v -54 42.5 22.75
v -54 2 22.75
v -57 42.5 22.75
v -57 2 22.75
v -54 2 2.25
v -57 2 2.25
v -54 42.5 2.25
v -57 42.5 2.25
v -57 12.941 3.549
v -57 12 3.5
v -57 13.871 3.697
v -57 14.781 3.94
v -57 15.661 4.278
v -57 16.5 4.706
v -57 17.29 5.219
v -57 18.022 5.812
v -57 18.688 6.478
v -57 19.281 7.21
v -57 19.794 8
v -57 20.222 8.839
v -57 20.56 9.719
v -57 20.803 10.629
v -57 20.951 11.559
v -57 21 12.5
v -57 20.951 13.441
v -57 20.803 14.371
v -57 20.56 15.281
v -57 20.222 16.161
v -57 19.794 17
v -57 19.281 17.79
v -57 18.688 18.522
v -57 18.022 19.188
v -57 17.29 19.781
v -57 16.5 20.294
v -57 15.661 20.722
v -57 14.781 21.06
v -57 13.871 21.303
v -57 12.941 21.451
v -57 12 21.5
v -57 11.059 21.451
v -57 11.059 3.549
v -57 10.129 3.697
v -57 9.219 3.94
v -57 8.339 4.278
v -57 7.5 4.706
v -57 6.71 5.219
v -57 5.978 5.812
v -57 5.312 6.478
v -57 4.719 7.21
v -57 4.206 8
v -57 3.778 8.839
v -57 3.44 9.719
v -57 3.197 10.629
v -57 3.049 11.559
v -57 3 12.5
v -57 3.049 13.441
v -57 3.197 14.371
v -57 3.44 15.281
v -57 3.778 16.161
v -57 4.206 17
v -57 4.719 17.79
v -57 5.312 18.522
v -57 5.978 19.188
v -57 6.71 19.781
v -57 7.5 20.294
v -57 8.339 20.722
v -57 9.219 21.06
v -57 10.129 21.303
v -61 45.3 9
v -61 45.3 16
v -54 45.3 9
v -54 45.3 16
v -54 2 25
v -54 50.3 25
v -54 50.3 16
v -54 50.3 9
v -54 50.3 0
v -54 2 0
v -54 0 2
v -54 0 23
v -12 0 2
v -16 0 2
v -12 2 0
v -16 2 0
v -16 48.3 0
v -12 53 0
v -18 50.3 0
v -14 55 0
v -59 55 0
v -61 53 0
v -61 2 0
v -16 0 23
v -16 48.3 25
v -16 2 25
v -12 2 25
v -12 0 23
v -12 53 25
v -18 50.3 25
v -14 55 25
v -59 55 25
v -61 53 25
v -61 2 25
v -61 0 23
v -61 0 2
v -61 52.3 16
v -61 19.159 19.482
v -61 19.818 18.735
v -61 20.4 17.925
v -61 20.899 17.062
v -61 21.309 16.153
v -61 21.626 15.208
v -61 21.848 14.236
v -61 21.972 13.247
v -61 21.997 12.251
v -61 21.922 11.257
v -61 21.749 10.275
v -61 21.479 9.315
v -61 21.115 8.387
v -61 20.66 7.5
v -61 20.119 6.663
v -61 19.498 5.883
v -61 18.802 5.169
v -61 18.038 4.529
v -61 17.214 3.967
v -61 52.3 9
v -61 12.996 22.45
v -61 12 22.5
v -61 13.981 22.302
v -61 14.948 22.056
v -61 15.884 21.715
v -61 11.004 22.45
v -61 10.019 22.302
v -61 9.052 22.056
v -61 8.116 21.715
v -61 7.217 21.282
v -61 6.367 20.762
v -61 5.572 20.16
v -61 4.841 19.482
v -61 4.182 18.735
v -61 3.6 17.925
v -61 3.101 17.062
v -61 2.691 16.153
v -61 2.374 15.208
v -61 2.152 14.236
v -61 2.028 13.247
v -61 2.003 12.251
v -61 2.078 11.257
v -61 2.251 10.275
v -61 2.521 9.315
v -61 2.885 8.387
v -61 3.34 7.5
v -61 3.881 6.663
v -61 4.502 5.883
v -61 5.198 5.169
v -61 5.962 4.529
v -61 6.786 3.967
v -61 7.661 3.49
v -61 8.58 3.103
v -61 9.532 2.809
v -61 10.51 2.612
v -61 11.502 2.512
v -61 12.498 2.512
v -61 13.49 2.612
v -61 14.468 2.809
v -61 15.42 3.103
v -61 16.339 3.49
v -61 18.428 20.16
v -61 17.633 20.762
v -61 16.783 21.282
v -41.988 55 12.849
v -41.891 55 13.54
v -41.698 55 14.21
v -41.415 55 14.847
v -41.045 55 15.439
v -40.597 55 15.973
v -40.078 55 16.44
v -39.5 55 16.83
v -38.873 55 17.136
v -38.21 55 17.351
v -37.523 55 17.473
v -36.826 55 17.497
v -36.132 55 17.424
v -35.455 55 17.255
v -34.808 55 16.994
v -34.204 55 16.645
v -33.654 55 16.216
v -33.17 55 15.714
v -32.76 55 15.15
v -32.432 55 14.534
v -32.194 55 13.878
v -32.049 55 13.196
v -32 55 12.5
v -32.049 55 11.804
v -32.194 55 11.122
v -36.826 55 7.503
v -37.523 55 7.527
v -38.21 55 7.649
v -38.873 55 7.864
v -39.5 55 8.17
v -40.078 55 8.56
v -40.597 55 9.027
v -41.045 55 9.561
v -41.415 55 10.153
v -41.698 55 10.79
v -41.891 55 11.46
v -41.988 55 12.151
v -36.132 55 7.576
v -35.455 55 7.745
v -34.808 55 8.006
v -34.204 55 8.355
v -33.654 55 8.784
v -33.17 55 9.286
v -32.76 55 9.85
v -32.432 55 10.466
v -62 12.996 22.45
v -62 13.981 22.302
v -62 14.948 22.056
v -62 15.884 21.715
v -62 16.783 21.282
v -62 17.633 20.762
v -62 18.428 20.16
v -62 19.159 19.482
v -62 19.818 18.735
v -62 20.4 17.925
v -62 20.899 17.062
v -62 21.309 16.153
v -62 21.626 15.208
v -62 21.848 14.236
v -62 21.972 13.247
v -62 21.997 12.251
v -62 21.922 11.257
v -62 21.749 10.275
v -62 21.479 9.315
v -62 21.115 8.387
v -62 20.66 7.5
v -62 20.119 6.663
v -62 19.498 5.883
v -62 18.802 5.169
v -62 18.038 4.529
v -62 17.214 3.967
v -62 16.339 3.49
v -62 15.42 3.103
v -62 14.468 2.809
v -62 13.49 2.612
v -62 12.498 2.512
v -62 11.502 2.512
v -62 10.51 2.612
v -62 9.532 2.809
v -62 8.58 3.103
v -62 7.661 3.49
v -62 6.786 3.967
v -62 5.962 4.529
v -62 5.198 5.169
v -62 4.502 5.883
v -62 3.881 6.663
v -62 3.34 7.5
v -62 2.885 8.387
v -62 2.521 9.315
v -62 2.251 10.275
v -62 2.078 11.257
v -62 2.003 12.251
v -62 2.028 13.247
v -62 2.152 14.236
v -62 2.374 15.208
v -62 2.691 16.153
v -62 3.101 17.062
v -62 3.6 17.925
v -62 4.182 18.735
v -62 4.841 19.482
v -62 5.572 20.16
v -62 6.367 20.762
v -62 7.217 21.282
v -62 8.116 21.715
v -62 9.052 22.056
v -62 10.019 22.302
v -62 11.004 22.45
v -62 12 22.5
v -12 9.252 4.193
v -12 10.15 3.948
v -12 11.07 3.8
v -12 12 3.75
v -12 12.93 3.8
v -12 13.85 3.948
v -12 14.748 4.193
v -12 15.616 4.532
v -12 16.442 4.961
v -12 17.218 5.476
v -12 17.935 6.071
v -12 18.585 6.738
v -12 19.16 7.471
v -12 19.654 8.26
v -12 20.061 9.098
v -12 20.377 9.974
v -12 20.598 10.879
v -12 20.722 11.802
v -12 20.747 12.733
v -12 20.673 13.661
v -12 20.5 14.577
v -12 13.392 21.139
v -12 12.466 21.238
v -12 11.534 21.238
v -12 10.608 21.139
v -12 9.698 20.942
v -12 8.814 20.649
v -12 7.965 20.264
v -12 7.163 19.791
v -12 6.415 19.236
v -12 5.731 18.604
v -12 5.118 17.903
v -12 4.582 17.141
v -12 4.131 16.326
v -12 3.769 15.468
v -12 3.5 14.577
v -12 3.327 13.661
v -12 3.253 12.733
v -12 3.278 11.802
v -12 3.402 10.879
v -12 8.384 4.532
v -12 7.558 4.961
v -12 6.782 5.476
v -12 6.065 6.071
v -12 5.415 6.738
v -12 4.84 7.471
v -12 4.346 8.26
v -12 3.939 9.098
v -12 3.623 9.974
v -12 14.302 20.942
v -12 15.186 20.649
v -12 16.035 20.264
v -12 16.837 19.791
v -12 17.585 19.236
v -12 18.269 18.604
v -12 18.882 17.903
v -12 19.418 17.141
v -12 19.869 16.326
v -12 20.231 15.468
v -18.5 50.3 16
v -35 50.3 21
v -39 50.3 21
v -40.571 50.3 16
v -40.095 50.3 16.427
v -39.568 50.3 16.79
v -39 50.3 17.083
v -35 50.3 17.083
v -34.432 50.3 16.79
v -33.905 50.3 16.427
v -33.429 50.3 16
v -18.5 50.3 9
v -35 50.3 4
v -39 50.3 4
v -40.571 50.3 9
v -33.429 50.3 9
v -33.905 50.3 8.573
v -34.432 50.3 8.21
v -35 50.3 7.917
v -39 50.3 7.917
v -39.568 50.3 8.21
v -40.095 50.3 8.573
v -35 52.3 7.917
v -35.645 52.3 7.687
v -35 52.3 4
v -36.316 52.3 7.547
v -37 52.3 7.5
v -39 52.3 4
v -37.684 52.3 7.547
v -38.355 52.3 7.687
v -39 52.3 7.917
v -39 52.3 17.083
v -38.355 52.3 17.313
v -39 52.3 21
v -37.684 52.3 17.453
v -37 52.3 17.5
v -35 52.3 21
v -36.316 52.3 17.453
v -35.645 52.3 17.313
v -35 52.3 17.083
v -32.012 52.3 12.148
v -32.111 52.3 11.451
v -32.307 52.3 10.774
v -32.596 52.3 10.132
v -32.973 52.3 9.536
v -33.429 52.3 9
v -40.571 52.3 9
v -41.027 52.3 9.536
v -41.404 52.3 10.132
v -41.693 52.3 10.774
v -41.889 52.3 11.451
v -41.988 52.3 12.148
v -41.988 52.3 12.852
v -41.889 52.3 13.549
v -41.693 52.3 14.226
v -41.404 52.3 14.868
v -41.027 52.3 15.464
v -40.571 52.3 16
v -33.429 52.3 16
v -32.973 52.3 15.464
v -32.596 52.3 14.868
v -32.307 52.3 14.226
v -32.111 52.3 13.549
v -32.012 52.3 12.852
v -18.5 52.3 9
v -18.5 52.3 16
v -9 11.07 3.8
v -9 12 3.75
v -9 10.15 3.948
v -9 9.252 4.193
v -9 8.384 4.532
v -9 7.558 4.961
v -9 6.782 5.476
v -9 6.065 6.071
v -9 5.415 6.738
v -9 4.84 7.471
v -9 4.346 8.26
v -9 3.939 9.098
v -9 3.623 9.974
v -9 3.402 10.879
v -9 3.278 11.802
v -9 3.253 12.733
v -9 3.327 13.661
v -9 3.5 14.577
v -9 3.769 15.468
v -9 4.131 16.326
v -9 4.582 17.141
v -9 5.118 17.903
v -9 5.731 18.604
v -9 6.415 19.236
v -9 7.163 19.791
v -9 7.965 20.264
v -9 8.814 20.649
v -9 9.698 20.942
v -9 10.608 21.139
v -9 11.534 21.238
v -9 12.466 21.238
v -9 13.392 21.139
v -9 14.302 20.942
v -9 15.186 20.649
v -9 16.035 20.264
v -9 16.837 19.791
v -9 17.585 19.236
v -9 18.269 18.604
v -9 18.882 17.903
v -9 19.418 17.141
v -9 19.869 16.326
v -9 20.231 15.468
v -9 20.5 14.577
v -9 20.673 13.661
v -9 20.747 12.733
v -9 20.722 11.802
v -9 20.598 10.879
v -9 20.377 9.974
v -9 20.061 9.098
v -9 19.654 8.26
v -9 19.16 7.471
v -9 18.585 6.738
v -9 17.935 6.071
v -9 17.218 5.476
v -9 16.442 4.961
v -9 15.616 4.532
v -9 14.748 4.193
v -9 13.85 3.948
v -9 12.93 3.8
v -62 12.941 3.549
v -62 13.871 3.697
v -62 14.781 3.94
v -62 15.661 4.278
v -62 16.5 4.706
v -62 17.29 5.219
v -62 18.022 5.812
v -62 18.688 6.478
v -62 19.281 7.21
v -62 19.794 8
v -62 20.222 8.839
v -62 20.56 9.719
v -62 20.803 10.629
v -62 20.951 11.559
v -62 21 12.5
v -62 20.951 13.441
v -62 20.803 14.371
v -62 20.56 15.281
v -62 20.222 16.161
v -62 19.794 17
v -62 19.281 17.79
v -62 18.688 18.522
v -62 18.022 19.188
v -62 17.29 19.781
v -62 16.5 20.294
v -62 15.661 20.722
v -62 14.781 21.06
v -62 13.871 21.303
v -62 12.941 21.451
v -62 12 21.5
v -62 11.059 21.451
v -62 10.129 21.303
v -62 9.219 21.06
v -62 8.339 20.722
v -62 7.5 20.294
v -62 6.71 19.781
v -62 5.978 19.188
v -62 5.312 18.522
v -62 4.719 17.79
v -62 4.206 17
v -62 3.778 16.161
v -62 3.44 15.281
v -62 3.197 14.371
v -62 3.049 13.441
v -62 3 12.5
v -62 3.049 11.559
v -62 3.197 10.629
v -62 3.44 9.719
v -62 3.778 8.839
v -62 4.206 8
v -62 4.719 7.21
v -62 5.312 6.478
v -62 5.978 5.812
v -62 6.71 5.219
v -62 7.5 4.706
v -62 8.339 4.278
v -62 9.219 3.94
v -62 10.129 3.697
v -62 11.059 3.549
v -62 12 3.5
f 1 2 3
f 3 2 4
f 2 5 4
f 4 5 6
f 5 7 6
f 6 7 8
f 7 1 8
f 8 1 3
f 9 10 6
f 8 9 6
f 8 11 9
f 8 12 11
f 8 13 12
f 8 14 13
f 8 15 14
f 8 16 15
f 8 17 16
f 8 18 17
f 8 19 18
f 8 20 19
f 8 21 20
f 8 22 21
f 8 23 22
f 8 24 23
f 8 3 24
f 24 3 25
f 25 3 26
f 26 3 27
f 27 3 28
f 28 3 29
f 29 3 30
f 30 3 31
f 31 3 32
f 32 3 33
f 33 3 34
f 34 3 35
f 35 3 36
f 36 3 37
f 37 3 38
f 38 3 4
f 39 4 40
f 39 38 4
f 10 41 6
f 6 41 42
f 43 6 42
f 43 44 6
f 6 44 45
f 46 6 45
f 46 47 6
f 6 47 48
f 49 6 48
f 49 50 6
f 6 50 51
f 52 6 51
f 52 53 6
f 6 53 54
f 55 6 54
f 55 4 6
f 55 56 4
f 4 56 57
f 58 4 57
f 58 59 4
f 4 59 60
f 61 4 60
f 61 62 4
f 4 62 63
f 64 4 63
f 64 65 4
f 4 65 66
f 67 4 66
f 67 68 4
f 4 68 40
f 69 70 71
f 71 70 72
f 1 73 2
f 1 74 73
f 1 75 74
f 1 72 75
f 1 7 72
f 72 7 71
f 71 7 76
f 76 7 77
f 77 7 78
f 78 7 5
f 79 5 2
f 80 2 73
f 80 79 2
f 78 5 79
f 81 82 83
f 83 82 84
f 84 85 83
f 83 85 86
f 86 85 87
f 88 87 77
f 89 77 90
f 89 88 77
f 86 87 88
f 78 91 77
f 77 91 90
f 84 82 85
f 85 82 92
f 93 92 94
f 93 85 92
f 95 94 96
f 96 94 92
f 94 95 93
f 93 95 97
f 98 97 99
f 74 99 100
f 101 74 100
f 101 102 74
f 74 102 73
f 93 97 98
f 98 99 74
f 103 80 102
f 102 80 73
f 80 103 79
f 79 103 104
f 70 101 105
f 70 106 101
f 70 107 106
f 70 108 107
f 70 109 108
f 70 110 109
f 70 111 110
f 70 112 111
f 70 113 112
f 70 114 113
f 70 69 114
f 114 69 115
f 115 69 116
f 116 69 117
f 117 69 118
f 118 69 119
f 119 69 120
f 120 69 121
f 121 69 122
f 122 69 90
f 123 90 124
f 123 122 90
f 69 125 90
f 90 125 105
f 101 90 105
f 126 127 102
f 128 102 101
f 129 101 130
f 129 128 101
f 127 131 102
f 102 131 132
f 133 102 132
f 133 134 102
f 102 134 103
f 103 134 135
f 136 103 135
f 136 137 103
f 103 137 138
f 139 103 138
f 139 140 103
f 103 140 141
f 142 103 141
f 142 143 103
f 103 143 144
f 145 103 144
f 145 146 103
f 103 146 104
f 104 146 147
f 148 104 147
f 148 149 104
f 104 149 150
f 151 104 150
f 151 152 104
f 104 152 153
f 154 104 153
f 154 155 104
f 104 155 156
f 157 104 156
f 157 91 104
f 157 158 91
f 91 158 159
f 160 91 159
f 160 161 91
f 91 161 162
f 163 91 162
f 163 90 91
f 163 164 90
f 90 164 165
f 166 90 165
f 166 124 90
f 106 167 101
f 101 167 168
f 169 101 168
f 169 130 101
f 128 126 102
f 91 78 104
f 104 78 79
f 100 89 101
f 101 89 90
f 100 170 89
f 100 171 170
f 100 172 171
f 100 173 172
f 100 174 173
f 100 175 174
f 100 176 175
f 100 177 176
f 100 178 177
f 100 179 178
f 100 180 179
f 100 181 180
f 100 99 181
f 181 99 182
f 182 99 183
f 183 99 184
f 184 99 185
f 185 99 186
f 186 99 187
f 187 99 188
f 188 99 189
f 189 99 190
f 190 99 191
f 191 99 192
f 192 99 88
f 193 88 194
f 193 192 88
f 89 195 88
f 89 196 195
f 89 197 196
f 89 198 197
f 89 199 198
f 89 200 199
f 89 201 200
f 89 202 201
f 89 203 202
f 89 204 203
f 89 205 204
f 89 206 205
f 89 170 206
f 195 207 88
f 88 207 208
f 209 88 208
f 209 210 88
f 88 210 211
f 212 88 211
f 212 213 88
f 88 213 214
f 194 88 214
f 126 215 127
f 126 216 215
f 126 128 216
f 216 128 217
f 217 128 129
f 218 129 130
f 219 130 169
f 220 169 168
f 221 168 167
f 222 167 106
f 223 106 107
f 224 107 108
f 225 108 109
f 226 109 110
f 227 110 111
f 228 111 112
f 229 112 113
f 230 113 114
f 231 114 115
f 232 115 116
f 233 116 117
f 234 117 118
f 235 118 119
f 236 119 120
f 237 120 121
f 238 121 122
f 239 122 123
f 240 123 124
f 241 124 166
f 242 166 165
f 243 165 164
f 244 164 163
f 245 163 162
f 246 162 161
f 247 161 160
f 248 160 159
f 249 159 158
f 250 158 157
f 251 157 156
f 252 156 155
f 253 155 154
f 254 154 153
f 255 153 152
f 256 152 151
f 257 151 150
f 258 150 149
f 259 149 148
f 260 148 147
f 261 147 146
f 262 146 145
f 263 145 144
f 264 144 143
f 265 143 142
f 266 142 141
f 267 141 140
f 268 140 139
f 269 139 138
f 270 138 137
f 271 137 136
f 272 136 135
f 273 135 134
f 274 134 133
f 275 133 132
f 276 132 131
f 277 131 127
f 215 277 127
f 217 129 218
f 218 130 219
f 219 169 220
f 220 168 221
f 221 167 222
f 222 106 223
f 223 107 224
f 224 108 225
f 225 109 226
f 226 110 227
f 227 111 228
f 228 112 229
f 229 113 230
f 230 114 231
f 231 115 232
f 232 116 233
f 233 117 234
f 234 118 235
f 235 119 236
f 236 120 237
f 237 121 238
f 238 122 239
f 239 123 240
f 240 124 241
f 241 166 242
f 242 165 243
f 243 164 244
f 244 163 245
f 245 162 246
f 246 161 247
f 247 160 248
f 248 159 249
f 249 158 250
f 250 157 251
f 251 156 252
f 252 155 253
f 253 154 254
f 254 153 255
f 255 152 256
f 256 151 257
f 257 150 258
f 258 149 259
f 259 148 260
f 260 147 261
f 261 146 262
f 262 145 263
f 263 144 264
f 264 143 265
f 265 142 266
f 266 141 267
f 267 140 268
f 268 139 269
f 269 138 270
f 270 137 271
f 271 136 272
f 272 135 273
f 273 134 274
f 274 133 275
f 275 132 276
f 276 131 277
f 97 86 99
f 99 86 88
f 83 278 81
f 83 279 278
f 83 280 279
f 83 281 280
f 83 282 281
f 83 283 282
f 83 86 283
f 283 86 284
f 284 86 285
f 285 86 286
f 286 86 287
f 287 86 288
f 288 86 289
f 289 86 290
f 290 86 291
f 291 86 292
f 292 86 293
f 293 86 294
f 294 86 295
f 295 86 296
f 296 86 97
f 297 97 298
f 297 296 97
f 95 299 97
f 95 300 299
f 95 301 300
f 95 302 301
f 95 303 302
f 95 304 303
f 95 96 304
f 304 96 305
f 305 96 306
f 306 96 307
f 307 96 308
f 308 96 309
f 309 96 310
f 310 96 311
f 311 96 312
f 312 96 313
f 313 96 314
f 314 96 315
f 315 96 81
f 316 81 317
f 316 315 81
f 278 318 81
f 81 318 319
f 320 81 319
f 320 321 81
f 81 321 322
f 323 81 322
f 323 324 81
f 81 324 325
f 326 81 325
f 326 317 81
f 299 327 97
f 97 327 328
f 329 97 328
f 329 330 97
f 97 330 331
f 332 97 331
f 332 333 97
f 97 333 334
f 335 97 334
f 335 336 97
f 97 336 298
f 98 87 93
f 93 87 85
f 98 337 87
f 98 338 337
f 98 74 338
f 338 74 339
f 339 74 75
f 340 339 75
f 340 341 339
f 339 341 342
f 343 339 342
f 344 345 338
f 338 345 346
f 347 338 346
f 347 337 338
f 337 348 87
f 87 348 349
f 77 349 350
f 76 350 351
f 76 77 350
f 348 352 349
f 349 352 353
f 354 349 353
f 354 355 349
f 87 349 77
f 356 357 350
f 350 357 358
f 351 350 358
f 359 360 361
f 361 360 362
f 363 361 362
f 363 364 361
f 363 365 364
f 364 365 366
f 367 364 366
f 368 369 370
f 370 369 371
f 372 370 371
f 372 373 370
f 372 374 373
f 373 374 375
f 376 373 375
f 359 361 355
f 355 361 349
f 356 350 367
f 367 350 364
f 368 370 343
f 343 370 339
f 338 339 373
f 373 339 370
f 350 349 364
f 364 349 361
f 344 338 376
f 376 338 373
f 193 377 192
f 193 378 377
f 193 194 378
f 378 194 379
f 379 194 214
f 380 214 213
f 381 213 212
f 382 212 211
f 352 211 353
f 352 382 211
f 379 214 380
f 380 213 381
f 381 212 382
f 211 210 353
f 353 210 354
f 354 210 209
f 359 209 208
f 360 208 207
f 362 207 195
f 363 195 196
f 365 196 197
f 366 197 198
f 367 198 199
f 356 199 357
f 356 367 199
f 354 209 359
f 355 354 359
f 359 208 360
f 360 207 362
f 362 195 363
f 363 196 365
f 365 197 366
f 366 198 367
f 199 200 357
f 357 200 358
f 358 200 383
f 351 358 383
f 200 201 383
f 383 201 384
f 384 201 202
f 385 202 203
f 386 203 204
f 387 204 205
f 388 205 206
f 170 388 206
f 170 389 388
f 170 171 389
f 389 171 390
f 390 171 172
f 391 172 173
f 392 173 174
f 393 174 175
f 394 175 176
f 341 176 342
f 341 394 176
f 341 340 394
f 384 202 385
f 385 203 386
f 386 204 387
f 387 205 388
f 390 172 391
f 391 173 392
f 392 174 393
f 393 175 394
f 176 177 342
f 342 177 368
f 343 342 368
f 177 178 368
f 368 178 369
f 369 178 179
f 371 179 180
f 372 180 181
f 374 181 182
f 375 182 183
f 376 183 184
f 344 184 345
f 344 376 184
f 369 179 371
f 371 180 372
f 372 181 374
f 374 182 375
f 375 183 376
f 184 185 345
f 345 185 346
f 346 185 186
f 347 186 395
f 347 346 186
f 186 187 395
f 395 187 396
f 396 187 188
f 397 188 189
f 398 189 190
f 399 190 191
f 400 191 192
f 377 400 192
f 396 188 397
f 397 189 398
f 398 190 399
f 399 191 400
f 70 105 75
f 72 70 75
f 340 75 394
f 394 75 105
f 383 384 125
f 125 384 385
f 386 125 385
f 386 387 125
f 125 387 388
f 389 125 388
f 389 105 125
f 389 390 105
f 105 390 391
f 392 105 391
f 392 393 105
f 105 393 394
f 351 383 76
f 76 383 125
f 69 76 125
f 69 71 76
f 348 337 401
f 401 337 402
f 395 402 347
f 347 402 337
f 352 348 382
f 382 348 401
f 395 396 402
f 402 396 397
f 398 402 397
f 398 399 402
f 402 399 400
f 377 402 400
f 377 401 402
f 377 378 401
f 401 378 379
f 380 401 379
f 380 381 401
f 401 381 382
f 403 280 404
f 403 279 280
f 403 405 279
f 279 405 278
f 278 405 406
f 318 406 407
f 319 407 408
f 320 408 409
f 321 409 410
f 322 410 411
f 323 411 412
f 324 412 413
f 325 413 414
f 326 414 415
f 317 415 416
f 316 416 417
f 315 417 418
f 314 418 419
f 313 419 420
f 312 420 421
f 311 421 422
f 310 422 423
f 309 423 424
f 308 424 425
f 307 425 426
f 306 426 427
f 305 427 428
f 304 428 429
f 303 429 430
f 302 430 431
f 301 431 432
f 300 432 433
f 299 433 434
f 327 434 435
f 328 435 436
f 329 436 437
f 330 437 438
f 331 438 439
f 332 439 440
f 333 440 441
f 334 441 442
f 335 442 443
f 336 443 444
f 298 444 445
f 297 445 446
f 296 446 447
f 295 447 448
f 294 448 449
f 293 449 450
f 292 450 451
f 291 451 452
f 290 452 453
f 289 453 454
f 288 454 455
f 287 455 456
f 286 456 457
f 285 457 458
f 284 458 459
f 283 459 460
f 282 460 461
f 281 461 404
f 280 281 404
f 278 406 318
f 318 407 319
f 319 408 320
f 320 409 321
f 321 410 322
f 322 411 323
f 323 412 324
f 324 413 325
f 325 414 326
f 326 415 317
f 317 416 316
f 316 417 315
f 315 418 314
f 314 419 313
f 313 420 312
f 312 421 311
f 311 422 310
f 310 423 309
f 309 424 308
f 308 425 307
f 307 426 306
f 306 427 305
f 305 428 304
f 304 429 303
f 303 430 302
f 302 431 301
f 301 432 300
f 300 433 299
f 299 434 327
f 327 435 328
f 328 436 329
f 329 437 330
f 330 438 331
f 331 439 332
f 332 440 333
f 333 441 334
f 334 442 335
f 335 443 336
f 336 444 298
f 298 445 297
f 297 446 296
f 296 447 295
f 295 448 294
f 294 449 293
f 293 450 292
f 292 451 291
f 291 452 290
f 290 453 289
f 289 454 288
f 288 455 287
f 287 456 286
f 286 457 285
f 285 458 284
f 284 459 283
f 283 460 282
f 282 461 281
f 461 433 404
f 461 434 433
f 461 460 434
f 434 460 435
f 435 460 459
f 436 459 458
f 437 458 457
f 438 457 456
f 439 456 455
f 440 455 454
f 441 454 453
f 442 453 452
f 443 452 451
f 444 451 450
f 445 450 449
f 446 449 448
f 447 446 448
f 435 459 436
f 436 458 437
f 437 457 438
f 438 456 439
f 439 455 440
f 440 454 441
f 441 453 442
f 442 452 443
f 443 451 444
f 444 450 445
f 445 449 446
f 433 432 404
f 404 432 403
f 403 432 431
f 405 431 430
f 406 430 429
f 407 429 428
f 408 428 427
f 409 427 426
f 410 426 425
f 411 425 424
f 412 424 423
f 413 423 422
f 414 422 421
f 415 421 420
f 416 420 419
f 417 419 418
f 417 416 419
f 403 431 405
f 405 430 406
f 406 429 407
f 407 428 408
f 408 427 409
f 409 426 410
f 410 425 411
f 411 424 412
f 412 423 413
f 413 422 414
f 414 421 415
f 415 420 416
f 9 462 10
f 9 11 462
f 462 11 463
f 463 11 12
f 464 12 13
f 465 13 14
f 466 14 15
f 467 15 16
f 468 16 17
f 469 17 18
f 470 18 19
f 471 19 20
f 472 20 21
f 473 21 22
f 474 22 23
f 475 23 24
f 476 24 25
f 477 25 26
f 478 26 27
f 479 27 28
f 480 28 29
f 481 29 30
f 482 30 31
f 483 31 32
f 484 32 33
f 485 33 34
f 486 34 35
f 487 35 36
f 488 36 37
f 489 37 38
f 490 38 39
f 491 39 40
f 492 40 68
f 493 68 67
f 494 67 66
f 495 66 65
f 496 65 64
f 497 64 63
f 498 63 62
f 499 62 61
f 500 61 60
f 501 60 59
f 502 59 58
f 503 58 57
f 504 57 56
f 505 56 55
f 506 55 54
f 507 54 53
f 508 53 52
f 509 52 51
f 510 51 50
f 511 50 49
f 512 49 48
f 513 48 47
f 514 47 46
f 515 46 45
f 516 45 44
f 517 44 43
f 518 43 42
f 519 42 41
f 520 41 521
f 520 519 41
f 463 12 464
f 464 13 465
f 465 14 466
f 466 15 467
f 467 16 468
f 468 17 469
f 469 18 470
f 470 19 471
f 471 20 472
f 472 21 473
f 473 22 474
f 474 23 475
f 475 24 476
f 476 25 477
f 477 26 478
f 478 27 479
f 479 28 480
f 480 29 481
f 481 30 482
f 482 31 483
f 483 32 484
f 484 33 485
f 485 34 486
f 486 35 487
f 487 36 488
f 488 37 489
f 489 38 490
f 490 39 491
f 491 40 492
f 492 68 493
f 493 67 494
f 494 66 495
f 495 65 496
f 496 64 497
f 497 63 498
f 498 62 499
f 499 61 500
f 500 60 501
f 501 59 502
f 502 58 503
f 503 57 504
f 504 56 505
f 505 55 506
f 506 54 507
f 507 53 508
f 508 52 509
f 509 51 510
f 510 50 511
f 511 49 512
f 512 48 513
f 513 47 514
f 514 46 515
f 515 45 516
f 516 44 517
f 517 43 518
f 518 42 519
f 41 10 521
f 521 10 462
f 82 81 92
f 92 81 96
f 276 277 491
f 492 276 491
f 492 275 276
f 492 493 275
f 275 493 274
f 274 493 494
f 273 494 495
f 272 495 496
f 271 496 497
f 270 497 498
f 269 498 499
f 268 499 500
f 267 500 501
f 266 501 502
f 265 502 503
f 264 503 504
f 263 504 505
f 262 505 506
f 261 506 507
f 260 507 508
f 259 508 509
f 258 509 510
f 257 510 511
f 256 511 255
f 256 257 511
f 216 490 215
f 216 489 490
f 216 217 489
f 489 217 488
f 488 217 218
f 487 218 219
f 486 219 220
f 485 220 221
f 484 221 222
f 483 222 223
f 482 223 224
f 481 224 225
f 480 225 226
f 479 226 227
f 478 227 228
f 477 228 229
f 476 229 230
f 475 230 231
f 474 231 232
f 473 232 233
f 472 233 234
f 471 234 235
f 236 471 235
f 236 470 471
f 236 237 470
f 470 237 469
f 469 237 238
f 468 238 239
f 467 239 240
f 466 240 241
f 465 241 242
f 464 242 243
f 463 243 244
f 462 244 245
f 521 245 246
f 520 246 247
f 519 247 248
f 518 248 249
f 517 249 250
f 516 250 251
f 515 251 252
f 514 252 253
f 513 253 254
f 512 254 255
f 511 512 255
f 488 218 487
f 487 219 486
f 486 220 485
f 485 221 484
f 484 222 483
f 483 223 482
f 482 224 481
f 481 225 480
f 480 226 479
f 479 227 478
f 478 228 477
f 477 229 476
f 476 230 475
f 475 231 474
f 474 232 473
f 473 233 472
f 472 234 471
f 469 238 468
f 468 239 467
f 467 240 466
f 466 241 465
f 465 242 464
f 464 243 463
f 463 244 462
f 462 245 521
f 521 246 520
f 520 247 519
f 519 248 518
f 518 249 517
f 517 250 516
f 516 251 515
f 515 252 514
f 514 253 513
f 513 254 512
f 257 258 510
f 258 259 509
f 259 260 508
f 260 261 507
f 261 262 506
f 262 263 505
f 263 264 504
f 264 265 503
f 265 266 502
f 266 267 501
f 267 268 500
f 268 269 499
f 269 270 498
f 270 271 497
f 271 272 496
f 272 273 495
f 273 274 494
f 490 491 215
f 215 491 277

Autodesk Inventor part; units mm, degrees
ref_plane "YZ Plane" through (0, 0, 0) normal (1, 0, 0) x (0, 1, 0)
ref_plane "XZ Plane" through (0, 0, 0) normal (0, 1, 0) x (-1, 0, 0)
ref_plane "XY Plane" through (0, 0, 0) normal (0, 0, 1) x (1, 0, 0)
sketch "Boceto1" plane through (0, 0, 0) normal (0, 0, 1) x (1, 0, 0)
  line L0 (-12, 0) -> (-16, 0)
  line L1 (-16, 0) -> (-16, 55)
  line L2 (-16, 55) -> (-12, 55)
  line L3 (-12, 55) -> (-12, 0)
  line L4 (-12, 55) -> (-62, 55)
  line L5 (-62, 55) -> (-62, 50.3)
  line L6 (-62, 50.3) -> (-12, 50.3)
  line L7 (-12, 50.3) -> (-12, 55)
  line L8 (-62, 55) -> (-58, 55)
  line L9 (-58, 55) -> (-58, 0)
  line L10 (-58, 0) -> (-62, 0)
  line L11 (-62, 0) -> (-62, 55)
  dimension "d4" = 4
  dimension "d5" = 55
  dimension "d6" = 50
  dimension "d7" = 4.7
  dimension "d8" = 4
  dimension "d9" = 55
extrude "Extrusión1" add sketch "Boceto1" along normal blind 25
sketch "Boceto2" plane through (-58, 0, 0) normal (1, 0, 0) x (0, 0, -1)
  line L0 (-25, 0) -> (-25, 50.3) projected
  circle A0 centre (-12.5, 12) radius 9
  line L1 (0, 0) -> (-25, 0) projected
  dimension "d12" = 12.5
  dimension "d13" = 18
  dimension "d21" = 12
extrude "Extrusión2" cut sketch "Boceto2" against normal blind 15
sketch "Boceto3" plane through (-12, 0, 0) normal (1, 0, 0) x (0, 0, -1)
  line L0 (0, 0) -> (0, 55) projected
  line L1 (0, 0) -> (-25, 0) projected
  circle A0 centre (-12.5, 12) radius 8.75
  dimension "d16" = 17.5
  dimension "d17" = 12
  dimension "d18" = 12.5
extrude "Extrusión3" add sketch "Boceto3" along normal blind 3
sketch "Boceto4" plane through (-58, 0, 0) normal (1, 0, 0) x (0, 0, -1)
  circle A0 centre (-12.5, 12) radius 9 projected
  line L0 (0, 50.3) -> (-25, 50.3) projected
  line L1 (-25, 0) -> (-25, 50.3) projected
  line L2 (0, 0) -> (-25, 0) projected
  line L3 (0, 0) -> (0, 50.3) projected
extrude "Extrusión4" add sketch "Boceto4" along normal blind 4
sketch "Boceto7" plane through (-62, 55, 0) normal (0, 1, 0) x (1, 0, 0)
  line L0 (50, 0) -> (0, 0)
  circle A0 centre (25, -12.5) radius 5
  line L1 (6.5, -9) -> (43.5, -9)
  line L2 (43.5, -9) -> (43.5, -16)
  line L3 (43.5, -16) -> (6.5, -16)
  line L4 (6.5, -16) -> (6.5, -9)
  line L5 (23, -4) -> (27, -4)
  line L6 (27, -4) -> (27, -21)
  line L7 (27, -21) -> (23, -21)
  line L8 (23, -21) -> (23, -4)
  line L9 (50, 0) -> (0, 0) projected
  point P0 (58, 0)
  point P1 (6.5, -12.5)
  point P2 (25, -9)
  point P3 (23, -12.5)
  point P4 (25, -4)
  point P5 (25, 0)
  dimension "d29" = 10
  dimension "d30" = 37
  dimension "d31" = 7
  dimension "d32" = 12.5
  dimension "d33" = 4
  dimension "d34" = 17
extrude "Extrusión6" cut sketch "Boceto7" against normal blind 10 contours A0 L3 L6 L1 | L1 L6 A0 | A0 L6 L3 | L6 L1 L8 A0 | L6 L3 L8 L1 | A0 L8 L3 L6 | L8 L1 A0 | L8 L3 A0 L1 | A0 L3 L8
sketch "Boceto8" plane through (-16, 50.3, 0) normal (0, -1, 0) x (1, 0, 0)
  line L0 (-39.5, 9) -> (-2.5, 9) projected
  line L1 (-39.5, 16) -> (-39.5, 9) projected
  line L2 (-2.5, 16) -> (-39.5, 16) projected
  line L3 (-2.5, 9) -> (-2.5, 16) projected
  circle A0 centre (-21, 12.5) radius 5 projected
  line L4 (-23, 21) -> (-23, 4) projected
  line L5 (-23, 4) -> (-19, 4) projected
  line L6 (-19, 4) -> (-19, 21) projected
  line L7 (-19, 21) -> (-23, 21) projected
  point P0 (16, 0)
extrude "Extrusión8" cut sketch "Boceto8" against normal blind 2 contours L1 L2 A0 L0 | A0 L2 L4 L0 | L4 L2 L6 L0 | L6 L2 A0 L0 | A0 L2 L3 L0
sketch "Boceto9" plane through (-16, 50.3, 0) normal (0, -1, 0) x (1, 0, 0)
  line L0 (-19, 4) -> (-19, 21) projected
  line L1 (-23, 21) -> (-23, 4) projected
  line L2 (-23, 4) -> (-19, 4) projected
  line L3 (-19, 21) -> (-23, 21) projected
  point P0 (16, 0)
extrude "Extrusión9" cut sketch "Boceto9" against normal blind 2
sketch "Boceto10" plane through (-54, 0, 0) normal (1, 0, 0) x (0, 0, -1)
  line L0 (-16, 50.3) -> (-9, 50.3)
  line L1 (-9, 50.3) -> (-9, 48.8686)
  line L2 (-9, 48.8686) -> (-16, 48.8686)
  line L3 (-16, 48.8686) -> (-16, 50.3)
  dimension "d43" = 7
  dimension "d44" = 1.4314
extrude "Extrusión10" cut sketch "Boceto10" against normal blind 2
chamfer "Chaflán3" distance 2 angle 45 1 edges at (-16, 50.3, 12.5)
chamfer "Chaflán4" distance 2 angle 45 1 edges at (-12, 55, 12.5)
sketch "Boceto11" plane through (-16, 50.3, 0) normal (0, 1, 0) x (1, 0, 0)
  line L0 (2, -16) -> (2, -9) projected
  line L1 (-40, -16) -> (-43.5, -16) projected
  line L2 (4, -9) -> (4, -16) projected
  line L3 (-43.5, -9) -> (-40, -9) projected
  point P0 (16, 0)
sketch "Boceto14" plane through (-62, 0, 0) normal (-1, 0, 0) x (0, 0, 1)
  circle A0 centre (12.5, 12) radius 9 projected
  line L0 (25, 55) -> (25, 0) projected
  line L1 (0, 55) -> (25, 55) projected
  line L2 (0, 55) -> (0, 0) projected
  line L3 (0, 0) -> (25, 0) projected
  circle A1 centre (12.5, 12) radius 10
extrude "Extrusión13" cut sketch "Boceto14" against normal blind 1 contours L0 L3 L2 L1
chamfer "Chaflán8" distance 2 angle 45 1 edges at (-61, 55, 12.5)
chamfer "Chaflán10" distance 2 angle 45 4 edges at (-57.5, 0, 0) (-57.5, 0, 25) (-14, 0, 25) (-14, 0, 0)
sketch "Boceto18" plane through (-54, 0, 0) normal (1, 0, 0) x (0, 0, -1)
  line L0 (-16, 50.3) -> (-9, 50.3)
  line L1 (-9, 50.3) -> (-9, 45.3)
  line L2 (-9, 45.3) -> (-16, 45.3)
  line L3 (-16, 45.3) -> (-16, 50.3)
  point P0 (0, 0)
extrude "Extrusión17" cut sketch "Boceto18" against normal blind 10
sketch "Boceto19" plane through (-55.5, 52.3, 16) normal (1, 0, 0) x (0, 0, -1)
  line L0 (0, -2) -> (7, -2) projected
  line L1 (7, -2) -> (7, 0) projected
  line L2 (7, 0) -> (0, 0) projected
  line L3 (0, -2) -> (0, 0) projected
  point P0 (16, -52.3)
extrude "Extrusión18" cut sketch "Boceto19" against normal blind 10
sketch "Boceto20" plane through (-54, 0, 0) normal (1, 0, 0) x (0, 0, -1)
  line L0 (-25, 50.3) -> (-16, 50.3) projected
  circle A0 centre (-12.5, 12) radius 9 projected
  line L1 (-22.75, 42.5) -> (-2.25, 42.5)
  line L2 (-2.25, 42.5) -> (-2.25, 2)
  line L3 (-2.25, 2) -> (-22.75, 2)
  line L4 (-22.75, 2) -> (-22.75, 42.5)
  line L5 (-22.75, 42.5) -> (-2.25, 2) construction
  line L6 (-2.25, 42.5) -> (-22.75, 2) construction
  line L7 (-22.75, 42.5) -> (-2.25, 42.5) construction
  point P0 (0, 0)
  point P1 (-12.5, 22.25)
  point P2 (-12.5, 2)
  dimension "d100" = 20.5
  dimension "d102" = 40.5
  dimension "d103" = 10
extrude "Extrusión19" cut sketch "Boceto20" against normal blind 3
properties part number "Enlace2Base"
